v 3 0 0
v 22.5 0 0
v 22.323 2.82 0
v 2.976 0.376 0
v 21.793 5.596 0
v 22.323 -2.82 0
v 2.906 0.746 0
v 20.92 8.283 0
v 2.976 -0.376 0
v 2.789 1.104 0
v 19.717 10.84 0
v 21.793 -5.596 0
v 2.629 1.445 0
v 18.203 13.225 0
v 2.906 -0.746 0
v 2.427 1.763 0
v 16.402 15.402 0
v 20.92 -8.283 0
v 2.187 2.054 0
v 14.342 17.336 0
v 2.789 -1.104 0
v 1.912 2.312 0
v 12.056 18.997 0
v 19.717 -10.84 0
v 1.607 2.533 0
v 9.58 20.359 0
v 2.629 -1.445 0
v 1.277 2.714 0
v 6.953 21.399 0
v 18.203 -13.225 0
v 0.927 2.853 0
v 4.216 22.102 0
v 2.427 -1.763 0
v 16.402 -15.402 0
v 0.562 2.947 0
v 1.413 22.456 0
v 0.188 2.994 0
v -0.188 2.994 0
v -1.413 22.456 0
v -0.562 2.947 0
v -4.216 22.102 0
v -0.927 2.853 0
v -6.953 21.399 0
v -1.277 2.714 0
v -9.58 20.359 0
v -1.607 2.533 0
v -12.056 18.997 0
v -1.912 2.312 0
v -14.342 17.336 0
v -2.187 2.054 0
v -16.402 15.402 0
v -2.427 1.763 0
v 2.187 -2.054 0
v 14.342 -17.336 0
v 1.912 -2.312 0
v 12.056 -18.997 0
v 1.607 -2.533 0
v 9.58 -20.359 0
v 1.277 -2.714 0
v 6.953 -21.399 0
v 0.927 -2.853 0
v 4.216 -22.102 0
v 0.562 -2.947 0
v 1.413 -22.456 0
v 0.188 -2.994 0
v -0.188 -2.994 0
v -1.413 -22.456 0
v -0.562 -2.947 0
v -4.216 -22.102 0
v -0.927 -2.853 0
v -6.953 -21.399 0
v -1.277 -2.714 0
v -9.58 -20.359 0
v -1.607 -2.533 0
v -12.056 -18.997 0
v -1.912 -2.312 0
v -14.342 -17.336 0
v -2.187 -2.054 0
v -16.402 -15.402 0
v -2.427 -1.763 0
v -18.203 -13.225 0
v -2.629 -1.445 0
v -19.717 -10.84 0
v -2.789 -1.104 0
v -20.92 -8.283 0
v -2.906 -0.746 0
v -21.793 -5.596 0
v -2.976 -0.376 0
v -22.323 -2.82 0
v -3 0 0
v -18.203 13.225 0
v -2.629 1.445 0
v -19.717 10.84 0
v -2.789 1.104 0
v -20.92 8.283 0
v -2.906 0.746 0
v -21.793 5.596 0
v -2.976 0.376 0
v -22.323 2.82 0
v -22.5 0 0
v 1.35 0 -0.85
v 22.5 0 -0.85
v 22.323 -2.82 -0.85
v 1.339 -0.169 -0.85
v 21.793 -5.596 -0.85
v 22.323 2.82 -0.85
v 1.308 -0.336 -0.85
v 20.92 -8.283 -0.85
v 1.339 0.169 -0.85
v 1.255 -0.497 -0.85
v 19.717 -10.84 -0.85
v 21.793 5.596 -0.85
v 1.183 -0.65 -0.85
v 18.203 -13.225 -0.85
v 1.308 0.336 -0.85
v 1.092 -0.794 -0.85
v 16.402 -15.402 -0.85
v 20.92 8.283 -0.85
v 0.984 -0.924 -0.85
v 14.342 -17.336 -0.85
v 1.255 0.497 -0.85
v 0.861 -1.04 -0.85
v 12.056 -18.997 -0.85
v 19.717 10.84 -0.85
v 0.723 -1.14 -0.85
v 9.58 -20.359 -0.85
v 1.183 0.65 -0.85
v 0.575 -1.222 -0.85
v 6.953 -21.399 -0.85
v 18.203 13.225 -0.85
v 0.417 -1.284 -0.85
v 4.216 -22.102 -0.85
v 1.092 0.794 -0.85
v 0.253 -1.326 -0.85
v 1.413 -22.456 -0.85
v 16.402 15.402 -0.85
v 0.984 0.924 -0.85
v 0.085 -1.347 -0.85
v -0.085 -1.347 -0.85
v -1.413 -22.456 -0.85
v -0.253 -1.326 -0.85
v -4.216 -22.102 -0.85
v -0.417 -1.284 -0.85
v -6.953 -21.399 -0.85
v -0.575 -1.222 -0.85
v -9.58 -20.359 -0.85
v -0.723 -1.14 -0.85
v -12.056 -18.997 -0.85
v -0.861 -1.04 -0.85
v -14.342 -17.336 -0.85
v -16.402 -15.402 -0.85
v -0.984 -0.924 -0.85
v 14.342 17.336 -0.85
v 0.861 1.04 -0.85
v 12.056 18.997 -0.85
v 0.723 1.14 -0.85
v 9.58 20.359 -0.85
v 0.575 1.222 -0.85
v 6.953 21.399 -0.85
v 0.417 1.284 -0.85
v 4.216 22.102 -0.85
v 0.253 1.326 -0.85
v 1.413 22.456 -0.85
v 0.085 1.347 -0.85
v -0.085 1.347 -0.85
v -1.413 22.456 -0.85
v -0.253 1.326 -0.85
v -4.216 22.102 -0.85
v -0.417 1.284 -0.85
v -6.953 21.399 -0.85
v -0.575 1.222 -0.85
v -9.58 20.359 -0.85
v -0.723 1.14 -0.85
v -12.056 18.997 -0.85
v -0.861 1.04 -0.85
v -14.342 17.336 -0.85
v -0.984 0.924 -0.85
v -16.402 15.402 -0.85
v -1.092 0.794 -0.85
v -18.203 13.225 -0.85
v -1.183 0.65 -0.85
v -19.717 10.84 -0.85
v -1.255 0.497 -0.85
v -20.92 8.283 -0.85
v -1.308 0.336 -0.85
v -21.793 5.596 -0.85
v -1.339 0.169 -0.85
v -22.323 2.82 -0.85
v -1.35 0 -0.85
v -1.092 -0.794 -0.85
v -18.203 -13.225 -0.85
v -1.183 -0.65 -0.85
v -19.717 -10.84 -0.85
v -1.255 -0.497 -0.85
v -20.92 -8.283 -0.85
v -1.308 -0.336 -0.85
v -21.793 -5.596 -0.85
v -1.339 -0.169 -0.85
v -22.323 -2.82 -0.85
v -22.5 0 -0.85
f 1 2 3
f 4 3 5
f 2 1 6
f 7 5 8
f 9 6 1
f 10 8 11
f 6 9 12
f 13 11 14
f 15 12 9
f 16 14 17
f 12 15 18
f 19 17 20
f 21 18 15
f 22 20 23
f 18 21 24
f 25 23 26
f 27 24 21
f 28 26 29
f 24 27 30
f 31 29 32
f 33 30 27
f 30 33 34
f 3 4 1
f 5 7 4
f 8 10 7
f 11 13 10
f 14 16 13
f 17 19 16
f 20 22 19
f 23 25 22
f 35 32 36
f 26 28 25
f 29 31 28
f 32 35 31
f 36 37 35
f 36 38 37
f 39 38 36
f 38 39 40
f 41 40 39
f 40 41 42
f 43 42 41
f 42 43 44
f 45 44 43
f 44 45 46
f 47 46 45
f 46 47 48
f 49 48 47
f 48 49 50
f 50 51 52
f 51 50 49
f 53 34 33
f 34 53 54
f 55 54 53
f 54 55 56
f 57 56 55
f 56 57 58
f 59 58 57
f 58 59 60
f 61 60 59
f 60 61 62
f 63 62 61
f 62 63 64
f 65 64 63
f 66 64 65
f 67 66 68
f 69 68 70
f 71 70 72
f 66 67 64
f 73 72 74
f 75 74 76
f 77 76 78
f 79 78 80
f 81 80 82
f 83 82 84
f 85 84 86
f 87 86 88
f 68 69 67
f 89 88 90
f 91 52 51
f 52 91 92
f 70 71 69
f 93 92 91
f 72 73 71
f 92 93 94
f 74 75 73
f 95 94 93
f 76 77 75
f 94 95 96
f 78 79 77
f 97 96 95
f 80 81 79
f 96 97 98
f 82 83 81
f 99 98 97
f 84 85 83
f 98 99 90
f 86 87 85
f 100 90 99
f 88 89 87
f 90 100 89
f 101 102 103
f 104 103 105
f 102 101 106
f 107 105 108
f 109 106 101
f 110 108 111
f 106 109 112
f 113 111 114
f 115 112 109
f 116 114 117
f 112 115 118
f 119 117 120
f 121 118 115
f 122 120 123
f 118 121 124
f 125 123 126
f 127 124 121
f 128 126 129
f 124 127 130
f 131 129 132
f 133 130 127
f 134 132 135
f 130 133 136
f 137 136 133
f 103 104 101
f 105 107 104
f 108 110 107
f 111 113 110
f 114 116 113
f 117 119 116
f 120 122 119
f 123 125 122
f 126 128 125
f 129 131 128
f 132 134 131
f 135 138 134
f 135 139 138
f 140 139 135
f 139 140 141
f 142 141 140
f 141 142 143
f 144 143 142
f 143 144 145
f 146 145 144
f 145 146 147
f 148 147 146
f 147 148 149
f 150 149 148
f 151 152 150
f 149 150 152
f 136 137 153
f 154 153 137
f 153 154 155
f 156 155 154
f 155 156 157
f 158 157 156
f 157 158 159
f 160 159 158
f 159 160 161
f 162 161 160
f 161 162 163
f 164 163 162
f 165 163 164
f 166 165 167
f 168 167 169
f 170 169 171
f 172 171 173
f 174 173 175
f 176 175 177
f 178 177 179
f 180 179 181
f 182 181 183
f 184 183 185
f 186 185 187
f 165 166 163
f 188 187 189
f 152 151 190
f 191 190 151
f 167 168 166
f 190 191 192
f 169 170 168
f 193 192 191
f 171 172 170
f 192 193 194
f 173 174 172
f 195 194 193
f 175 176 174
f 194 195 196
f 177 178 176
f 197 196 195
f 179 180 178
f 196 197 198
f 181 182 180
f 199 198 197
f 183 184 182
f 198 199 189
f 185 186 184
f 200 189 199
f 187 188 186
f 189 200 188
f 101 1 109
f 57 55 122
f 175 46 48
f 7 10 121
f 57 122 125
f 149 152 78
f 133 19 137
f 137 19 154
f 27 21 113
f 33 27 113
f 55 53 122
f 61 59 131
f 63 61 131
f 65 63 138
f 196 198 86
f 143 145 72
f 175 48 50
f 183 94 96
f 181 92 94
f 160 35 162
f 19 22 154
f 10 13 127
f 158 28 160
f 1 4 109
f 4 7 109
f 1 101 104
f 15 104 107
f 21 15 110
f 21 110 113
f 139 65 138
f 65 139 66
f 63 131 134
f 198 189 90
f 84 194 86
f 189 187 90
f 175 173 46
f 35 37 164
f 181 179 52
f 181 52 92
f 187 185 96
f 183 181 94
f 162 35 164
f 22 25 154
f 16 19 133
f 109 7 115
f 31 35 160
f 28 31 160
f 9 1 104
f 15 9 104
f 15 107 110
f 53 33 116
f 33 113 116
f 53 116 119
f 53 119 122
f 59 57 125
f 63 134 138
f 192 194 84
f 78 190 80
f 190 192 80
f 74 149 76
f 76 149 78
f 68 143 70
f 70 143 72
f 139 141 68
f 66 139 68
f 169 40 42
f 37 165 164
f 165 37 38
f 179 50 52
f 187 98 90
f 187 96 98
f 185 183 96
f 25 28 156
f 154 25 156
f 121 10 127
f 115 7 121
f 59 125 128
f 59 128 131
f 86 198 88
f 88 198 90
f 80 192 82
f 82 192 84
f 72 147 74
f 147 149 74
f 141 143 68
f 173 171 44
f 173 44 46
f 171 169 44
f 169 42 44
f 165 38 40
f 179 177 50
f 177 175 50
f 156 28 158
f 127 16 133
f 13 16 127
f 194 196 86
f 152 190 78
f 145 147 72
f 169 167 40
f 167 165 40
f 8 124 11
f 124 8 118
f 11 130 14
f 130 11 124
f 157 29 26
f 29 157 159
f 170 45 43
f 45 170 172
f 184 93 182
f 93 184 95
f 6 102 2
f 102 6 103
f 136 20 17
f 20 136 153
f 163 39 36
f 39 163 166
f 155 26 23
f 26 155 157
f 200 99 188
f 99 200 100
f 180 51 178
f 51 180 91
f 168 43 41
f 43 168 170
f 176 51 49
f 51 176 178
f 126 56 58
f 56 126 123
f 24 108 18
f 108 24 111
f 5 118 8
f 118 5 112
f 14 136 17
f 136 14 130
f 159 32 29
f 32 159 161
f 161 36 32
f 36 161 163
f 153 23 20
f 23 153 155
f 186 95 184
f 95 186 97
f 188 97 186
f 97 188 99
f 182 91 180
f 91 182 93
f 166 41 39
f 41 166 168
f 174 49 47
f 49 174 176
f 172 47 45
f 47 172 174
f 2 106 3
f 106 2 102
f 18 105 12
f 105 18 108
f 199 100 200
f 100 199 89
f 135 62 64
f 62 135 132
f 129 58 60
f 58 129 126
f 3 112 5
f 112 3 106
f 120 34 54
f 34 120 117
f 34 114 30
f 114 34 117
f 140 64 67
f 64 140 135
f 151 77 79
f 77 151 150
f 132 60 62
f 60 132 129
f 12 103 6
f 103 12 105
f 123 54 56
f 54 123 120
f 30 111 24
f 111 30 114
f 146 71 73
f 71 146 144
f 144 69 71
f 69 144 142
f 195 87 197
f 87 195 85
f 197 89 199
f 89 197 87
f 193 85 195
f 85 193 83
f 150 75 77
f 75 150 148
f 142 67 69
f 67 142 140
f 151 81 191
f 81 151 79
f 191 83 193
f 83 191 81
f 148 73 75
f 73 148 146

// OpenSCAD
$fn = 50;


difference() {
	union() {
		translate(v = [0, 0, -0.8500000000]) {
			cylinder(h = 0.8500000000, r = 22.5000000000);
		}
	}
	union() {
		translate(v = [0, 0, 0]) {
			rotate(a = [0, 0, 0]) {
				difference() {
					union() {
						translate(v = [0, 0, -0.8500000000]) {
							cylinder(h = 0.8500000000, r = 1.0000000000);
						}
						translate(v = [0, 0, -0.8500000000]) {
							cylinder(h = 0.8500000000, r1 = 1.3500000000, r2 = 3.0000000000);
						}
						translate(v = [0, 0, -0.8500000000]) {
							cylinder(h = 0.8500000000, r = 1.3500000000);
						}
						translate(v = [0, 0, -0.8500000000]) {
							cylinder(h = 0.8500000000, r = 1.0000000000);
						}
					}
					union();
				}
			}
		}
	}
}
